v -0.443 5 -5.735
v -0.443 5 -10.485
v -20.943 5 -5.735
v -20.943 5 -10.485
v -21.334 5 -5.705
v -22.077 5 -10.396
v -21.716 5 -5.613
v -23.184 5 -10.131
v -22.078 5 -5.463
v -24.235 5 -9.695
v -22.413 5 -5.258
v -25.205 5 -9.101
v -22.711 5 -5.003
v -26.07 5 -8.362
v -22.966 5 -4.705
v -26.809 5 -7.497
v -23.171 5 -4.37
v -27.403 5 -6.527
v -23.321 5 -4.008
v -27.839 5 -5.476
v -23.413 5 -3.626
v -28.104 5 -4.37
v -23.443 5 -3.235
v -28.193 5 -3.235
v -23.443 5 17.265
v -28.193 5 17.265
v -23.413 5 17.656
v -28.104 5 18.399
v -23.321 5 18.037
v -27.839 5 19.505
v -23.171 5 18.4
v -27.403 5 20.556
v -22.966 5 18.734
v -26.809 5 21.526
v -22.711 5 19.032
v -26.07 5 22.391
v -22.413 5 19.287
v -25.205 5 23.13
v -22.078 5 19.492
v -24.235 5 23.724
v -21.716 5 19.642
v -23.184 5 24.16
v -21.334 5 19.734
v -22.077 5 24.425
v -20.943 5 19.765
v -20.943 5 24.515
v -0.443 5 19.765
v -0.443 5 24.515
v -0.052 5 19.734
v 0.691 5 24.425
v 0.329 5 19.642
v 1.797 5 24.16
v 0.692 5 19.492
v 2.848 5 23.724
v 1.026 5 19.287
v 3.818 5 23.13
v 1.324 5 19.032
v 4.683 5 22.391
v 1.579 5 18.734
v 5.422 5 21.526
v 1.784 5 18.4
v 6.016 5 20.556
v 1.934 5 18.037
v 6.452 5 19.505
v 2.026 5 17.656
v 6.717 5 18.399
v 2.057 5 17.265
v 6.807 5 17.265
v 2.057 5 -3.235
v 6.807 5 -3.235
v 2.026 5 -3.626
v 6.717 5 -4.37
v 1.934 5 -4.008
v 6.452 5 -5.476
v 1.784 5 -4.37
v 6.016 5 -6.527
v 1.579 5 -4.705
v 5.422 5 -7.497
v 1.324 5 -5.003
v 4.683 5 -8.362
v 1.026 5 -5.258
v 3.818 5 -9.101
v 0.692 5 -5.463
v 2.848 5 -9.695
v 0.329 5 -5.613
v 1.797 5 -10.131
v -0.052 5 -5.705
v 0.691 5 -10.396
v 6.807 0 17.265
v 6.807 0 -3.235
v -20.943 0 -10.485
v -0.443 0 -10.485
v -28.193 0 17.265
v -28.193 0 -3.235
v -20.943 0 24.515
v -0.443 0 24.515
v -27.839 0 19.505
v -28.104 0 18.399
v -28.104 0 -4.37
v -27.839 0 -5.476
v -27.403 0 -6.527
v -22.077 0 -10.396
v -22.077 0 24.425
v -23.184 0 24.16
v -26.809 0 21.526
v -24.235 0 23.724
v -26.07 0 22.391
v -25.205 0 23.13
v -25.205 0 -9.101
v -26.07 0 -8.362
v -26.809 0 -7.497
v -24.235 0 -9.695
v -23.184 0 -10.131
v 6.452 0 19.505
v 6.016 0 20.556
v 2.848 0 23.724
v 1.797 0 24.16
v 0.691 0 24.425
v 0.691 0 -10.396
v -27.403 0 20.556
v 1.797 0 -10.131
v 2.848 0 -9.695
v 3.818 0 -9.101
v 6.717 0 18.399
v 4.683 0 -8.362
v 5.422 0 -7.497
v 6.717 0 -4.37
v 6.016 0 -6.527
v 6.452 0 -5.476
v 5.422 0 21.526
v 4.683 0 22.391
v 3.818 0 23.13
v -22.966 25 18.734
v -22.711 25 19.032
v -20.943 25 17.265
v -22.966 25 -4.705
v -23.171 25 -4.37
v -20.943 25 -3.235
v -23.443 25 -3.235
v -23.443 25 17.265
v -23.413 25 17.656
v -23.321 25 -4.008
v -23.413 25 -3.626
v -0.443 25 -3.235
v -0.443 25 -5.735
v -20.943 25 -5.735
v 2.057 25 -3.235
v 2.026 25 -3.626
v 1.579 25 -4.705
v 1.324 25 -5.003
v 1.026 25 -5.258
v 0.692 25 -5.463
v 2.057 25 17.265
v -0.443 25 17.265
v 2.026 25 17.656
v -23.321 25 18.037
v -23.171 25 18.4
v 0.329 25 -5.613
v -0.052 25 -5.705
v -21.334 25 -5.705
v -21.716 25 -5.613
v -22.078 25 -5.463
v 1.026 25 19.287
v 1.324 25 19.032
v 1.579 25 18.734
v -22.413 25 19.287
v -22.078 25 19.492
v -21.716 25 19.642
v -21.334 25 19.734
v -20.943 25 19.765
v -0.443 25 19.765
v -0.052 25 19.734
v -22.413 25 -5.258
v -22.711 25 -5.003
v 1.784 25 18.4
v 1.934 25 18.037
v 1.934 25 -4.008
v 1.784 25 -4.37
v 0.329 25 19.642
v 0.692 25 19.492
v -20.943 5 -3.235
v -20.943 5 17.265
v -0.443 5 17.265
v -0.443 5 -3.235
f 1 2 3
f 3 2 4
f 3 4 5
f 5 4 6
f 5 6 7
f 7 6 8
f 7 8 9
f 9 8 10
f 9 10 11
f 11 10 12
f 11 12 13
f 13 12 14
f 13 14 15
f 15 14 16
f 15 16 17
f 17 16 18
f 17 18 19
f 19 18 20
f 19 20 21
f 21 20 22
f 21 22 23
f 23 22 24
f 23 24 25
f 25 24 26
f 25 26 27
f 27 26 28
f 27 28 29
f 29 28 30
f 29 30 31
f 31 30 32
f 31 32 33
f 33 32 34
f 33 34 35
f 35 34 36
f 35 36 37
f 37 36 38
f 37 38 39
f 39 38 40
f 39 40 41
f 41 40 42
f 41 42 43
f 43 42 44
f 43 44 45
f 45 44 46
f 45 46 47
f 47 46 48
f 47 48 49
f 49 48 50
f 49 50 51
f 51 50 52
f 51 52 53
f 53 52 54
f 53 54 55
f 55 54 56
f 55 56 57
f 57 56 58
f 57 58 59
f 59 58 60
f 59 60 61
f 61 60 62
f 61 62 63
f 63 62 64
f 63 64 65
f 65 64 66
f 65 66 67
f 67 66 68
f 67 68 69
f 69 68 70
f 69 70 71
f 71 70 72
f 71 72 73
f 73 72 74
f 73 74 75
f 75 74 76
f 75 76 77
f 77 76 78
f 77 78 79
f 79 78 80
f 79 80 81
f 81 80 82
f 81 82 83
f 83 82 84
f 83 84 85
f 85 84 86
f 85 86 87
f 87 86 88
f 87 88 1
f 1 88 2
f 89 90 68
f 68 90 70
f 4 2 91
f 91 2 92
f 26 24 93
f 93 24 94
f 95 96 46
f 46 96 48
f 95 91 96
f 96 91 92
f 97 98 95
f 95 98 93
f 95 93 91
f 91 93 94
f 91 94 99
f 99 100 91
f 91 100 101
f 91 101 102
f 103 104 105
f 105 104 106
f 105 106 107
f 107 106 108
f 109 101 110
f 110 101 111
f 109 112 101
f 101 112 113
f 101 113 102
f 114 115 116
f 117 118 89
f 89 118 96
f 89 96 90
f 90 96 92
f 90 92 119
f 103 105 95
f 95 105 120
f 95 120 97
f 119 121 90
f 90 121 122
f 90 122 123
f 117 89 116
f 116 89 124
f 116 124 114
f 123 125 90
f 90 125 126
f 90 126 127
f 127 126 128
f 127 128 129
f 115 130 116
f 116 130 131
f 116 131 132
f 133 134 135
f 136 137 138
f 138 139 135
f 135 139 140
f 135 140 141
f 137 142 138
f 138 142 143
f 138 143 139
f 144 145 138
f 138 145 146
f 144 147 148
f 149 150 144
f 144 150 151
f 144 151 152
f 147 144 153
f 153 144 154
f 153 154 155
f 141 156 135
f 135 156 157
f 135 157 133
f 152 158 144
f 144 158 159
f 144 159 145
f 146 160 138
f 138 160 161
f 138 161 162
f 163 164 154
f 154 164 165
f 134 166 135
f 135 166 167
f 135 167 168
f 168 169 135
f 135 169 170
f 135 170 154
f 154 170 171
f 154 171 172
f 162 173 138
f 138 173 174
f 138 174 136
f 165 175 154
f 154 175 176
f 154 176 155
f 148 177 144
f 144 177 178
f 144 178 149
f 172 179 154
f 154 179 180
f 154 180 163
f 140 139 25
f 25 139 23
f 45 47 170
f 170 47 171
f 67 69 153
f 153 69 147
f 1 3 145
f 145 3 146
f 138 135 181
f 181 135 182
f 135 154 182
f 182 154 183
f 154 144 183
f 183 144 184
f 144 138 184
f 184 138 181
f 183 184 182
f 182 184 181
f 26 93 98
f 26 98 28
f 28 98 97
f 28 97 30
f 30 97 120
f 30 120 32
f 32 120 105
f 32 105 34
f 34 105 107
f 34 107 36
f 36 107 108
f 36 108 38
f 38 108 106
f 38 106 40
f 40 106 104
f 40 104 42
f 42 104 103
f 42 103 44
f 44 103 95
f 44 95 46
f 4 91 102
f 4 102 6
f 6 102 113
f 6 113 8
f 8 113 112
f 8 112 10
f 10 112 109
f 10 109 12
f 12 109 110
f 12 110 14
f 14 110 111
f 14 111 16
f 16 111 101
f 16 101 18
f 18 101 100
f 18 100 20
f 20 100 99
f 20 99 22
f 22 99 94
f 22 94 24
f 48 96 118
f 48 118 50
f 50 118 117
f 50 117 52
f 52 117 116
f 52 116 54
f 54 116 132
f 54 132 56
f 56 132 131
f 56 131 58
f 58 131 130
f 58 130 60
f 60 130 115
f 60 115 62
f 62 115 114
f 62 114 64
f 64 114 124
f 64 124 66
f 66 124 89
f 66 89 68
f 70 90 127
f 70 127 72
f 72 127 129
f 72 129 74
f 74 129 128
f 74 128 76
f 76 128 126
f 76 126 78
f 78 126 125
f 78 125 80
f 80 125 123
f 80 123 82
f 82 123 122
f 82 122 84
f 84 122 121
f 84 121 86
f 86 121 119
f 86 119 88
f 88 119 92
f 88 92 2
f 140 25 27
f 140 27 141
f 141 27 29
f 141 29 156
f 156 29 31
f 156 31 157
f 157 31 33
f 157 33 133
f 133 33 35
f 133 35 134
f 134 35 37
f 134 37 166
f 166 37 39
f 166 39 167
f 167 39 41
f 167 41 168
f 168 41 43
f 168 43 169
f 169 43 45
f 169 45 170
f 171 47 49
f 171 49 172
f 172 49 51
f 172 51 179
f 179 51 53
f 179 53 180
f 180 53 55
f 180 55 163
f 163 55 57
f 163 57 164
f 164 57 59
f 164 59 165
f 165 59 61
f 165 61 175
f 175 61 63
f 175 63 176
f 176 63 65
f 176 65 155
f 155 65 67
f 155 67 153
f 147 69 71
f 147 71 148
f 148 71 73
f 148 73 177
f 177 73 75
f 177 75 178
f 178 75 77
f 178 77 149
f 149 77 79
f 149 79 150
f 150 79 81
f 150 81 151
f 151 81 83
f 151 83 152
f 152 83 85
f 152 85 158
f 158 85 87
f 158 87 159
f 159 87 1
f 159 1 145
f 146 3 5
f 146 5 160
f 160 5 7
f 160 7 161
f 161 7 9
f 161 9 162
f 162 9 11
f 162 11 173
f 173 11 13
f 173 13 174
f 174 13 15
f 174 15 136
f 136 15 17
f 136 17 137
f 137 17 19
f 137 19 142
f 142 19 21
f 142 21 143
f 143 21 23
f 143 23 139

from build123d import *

# Parameters (mm, degrees)
SKETCH1_W           = 35
SKETCH1_H           = 35
BOSS_EXTRUDE1_DEPTH = 5
SKETCH2_W           = 25.5
SKETCH2_H           = 25.5
SKETCH2_W_2         = 20.5
SKETCH2_H_2         = 20.5
BOSS_EXTRUDE2_DEPTH = 20
FILLET1_R           = 7.25
FILLET2_R           = 2.5


with BuildPart() as part:
    # Sketch1 → Boss-Extrude1 (new body)
    with BuildSketch(Plane(origin=(0, 0, 0), x_dir=(1, 0, 0), z_dir=(0, 1, 0))):
        with Locations((-10.693342281, -7.01463487)):
            Rectangle(SKETCH1_W, SKETCH1_H)
    extrude(amount=BOSS_EXTRUDE1_DEPTH)

    # Sketch2 → Boss-Extrude2 (add)
    with BuildSketch(Plane(origin=(0, 5, 0), x_dir=(1, 0, 0), z_dir=(0, 1, 0))):
        with Locations((-10.693342281, -7.01463487)):
            Rectangle(SKETCH2_W, SKETCH2_H)
        with Locations((-10.693342281, -7.01463487)):
            Rectangle(SKETCH2_W_2, SKETCH2_H_2, mode=Mode.SUBTRACT)
    extrude(amount=BOSS_EXTRUDE2_DEPTH)

    # Fillet1
    fillet1_edges = [part.edges().sort_by_distance(p)[0] for p in [
        (6.806657719, 2.5, 24.51463487),
        (-28.193342281, 2.5, 24.51463487),
        (-28.193342281, 2.5, -10.48536513),
        (6.806657719, 2.5, -10.48536513),
    ]]
    fillet(fillet1_edges, radius=FILLET1_R)

    # Fillet2
    fillet2_edges = [part.edges().sort_by_distance(p)[0] for p in [
        (-23.443342281, 15, -5.73536513),
        (-23.443342281, 15, 19.76463487),
        (2.056657719, 15, 19.76463487),
        (2.056657719, 15, -5.73536513),
    ]]
    fillet(fillet2_edges, radius=FILLET2_R)


solid = part.part
